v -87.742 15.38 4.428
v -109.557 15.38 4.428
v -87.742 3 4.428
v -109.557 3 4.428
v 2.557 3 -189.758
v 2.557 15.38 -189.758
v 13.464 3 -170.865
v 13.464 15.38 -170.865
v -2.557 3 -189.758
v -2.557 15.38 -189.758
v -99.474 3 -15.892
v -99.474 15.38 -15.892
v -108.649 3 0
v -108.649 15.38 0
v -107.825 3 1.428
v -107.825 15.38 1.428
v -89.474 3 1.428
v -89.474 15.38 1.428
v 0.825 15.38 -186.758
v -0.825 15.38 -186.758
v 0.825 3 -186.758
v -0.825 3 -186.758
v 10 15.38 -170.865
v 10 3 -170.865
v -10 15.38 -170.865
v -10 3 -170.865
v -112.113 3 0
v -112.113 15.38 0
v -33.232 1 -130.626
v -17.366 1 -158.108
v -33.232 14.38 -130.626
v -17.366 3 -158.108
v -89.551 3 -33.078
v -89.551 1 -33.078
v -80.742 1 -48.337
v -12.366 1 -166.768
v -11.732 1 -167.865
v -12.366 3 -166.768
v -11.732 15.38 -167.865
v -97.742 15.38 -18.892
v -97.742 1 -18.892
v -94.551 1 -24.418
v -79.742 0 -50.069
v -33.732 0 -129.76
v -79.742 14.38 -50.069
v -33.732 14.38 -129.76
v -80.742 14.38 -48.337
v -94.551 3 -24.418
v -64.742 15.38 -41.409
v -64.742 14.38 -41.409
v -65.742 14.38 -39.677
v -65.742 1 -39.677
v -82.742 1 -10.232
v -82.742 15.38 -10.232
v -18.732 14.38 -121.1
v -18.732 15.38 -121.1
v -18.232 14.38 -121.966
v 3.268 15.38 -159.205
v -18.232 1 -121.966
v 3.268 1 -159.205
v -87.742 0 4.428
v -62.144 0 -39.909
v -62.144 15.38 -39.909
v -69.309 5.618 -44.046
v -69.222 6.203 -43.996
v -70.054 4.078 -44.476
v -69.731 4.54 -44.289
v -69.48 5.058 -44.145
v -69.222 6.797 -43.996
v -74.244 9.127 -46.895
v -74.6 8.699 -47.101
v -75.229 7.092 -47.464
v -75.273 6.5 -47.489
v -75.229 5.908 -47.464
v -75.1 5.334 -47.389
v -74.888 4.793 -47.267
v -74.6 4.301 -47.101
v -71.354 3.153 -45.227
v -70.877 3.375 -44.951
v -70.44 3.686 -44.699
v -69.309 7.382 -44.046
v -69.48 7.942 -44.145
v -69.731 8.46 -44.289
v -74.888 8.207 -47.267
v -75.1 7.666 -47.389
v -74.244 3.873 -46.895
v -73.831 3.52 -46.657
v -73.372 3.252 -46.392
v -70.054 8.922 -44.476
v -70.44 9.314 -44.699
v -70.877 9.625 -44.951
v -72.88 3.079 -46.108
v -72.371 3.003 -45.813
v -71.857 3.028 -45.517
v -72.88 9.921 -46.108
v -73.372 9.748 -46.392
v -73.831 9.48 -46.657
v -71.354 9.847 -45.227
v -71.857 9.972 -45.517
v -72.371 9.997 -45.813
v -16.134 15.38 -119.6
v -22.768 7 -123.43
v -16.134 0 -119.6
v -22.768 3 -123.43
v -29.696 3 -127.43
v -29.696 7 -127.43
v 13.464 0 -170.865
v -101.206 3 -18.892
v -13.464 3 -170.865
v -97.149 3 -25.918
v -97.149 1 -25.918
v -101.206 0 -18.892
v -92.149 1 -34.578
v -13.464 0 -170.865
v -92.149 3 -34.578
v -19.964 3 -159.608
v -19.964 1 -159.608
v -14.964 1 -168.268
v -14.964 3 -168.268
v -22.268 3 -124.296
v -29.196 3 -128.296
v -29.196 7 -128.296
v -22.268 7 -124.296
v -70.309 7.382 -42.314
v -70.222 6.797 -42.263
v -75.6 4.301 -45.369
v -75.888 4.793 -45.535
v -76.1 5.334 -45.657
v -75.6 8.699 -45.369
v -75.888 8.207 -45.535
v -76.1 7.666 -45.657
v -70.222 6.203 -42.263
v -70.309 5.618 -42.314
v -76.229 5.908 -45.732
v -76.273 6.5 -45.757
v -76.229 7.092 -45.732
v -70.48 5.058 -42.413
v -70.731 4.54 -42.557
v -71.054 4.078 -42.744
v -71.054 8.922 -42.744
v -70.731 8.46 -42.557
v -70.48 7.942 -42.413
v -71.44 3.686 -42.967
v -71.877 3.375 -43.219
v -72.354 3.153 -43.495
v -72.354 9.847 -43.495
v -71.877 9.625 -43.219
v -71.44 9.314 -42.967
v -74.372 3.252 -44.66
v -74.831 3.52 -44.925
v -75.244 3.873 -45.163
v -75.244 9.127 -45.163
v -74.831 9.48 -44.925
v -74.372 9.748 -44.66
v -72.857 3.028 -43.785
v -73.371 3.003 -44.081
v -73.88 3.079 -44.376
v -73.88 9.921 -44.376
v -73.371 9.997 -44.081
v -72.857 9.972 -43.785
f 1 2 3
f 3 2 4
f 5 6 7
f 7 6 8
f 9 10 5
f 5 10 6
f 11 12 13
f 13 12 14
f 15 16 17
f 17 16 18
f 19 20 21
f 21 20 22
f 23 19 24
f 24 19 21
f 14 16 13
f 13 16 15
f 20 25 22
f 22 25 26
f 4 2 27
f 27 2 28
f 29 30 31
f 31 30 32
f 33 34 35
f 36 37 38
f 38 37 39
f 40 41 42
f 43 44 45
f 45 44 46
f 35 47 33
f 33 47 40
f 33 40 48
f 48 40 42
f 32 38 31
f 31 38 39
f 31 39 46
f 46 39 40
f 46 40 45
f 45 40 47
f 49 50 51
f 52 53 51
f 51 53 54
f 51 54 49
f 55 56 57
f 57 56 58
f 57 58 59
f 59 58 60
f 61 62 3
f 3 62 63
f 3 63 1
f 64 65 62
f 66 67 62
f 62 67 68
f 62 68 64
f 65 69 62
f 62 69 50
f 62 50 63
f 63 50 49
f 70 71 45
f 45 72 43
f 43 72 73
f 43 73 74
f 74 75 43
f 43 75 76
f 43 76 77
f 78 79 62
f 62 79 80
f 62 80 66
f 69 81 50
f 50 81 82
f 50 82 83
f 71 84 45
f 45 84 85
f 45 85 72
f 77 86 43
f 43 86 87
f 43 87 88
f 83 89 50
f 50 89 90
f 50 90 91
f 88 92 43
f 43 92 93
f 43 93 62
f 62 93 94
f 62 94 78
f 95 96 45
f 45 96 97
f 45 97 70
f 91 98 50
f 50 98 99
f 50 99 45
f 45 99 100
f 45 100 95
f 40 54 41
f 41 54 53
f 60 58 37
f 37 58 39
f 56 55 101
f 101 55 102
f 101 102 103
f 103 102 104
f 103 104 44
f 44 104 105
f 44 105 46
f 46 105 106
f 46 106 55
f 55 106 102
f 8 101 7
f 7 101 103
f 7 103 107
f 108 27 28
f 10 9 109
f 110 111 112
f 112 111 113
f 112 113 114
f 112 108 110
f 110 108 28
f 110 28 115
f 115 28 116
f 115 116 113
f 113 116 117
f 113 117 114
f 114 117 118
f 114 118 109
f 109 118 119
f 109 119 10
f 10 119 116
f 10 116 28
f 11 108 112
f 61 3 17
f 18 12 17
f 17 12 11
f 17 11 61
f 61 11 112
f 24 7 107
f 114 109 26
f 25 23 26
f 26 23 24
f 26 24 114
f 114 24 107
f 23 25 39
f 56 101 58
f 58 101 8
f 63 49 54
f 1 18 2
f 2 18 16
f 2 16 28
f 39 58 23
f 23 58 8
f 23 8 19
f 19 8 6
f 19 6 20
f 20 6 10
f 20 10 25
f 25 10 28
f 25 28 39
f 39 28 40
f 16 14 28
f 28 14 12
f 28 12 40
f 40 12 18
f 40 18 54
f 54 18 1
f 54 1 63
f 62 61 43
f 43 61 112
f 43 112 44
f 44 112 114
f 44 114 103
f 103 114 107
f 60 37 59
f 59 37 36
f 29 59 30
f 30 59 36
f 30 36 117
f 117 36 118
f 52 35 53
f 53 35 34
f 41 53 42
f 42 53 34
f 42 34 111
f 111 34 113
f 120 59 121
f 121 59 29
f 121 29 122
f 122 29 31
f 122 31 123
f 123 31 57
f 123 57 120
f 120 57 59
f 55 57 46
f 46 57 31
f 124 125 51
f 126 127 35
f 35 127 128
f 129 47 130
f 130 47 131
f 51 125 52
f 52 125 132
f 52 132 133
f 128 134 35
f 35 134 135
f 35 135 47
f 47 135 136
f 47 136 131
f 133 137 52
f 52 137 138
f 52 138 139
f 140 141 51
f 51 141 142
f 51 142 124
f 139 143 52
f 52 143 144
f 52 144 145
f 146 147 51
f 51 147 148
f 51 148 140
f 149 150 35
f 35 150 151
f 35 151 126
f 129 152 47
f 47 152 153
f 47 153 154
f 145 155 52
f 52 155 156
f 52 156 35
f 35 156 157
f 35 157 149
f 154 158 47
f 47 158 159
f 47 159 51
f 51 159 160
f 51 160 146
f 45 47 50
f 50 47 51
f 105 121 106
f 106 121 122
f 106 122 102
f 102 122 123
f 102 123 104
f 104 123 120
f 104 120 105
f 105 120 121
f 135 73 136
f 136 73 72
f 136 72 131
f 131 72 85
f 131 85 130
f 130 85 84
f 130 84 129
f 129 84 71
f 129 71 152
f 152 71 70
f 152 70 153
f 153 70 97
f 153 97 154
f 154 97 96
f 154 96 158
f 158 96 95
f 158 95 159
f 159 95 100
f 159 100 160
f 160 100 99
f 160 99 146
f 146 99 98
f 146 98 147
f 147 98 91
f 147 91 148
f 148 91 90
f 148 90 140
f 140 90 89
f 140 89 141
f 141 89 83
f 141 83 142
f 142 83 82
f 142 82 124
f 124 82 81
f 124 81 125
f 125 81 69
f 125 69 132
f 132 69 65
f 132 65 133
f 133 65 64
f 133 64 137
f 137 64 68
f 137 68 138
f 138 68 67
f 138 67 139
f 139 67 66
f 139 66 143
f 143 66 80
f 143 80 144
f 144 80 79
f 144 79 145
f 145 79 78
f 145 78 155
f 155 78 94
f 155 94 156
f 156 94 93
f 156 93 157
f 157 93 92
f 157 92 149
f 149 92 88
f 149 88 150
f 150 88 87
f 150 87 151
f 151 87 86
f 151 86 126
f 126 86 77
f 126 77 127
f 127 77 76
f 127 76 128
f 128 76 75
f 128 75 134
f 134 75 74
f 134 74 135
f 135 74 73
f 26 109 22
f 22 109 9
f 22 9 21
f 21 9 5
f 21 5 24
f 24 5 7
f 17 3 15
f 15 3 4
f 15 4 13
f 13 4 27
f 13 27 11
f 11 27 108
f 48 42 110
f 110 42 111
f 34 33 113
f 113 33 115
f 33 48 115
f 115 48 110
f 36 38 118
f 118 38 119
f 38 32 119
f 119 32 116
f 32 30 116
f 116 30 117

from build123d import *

# Parameters (mm, degrees)
BOSS_EXTRUDE2_DEPTH = 15.38
BOSS_EXTRUDE3_DEPTH = 1
BOSS_EXTRUDE4_DEPTH = 14.38
CUT_EXTRUDE1_DEPTH  = 8.26
SKETCH12_R          = 3.5
CUT_EXTRUDE2_DEPTH  = 8.26
CUT_EXTRUDE3_DEPTH  = 3
SKETCH16_W          = 10
SKETCH16_H          = 2
CUT_EXTRUDE4_DEPTH  = 3


with BuildPart() as part:
    # Sketch1 → Boss-Extrude2 (new body)
    with BuildSketch(Plane(origin=(0, 0, 0), x_dir=(1, 0, 0), z_dir=(0, 1, 0))):
        Polygon((-33.232050802, 130.626242439), (-11.732050802, 167.865334802), (3.267949197, 159.205080764), (-18.232050803, 121.965988402), (-18.732050803, 121.099962998), (-16.133974592, 119.599962998), (13.464101619, 170.865334801), (2.556624332, 189.757639644), (-2.556624322, 189.757639644), (-112.11324865, 2e-09), (-109.556624323, -4.428203228), (-87.74166975, -4.428203228), (-62.14359354, 39.908965344), (-64.74166975, 41.408965344), (-65.74166975, 39.676914536), (-82.74166975, 10.232050807), (-97.741669749, 18.892304845), (-80.741669749, 48.337168573), (-79.741669749, 50.069219381), (-33.732050802, 129.760217035), align=None)
        Polygon((-89.473720558, -1.42820323), (-107.824573519, -1.42820323), (-108.649147039, 0), (-99.473720558, 15.892304845), align=None, mode=Mode.SUBTRACT)
        Polygon((-9.999999996, 170.865334801), (-0.824573515, 186.757639646), (0.824573508, 186.757639646), (10.000000004, 170.865334801), align=None, mode=Mode.SUBTRACT)
    extrude(amount=BOSS_EXTRUDE2_DEPTH)

    # Sketch1<11> → Boss-Extrude3 (add)
    with BuildSketch(Plane(origin=(0, 0, 0), x_dir=(1, 0, 0), z_dir=(0, 1, 0))):
        Polygon((3.267949197, 159.205080764), (-11.732050802, 167.865334802), (-33.232050802, 130.626242439), (-18.232050803, 121.965988402), align=None)
        Polygon((-65.74166975, 39.676914536), (-80.741669749, 48.337168573), (-97.741669749, 18.892304845), (-82.74166975, 10.232050807), align=None)
    extrude(amount=BOSS_EXTRUDE3_DEPTH)

    # Sketch1<12> → Boss-Extrude4 (add)
    with BuildSketch(Plane(origin=(0, 0, 0), x_dir=(1, 0, 0), z_dir=(0, 1, 0))):
        Polygon((-18.232050803, 121.965988402), (-33.232050802, 130.626242439), (-33.732050802, 129.760217035), (-18.732050803, 121.099962998), align=None)
        Polygon((-64.74166975, 41.408965344), (-79.741669749, 50.069219381), (-80.741669749, 48.337168573), (-65.74166975, 39.676914536), align=None)
    extrude(amount=BOSS_EXTRUDE4_DEPTH)

    # Sketch10 → Cut-Extrude1 (cut)
    with BuildSketch(Plane(origin=(47.754809476, 0, -82.713756318), x_dir=(0.8660254037844418, 0, 0.49999999999999456), z_dir=(-0.4999999999999946, 0, 0.8660254037844419))):
        Polygon((-85.432921433, 3), (-81.432921433, 3), (-81.432921433, 7), (-89.432921433, 7), (-89.432921433, 3), align=None)
    extrude(amount=-CUT_EXTRUDE1_DEPTH, mode=Mode.SUBTRACT)

    # Sketch12 → Cut-Extrude2 (cut)
    with BuildSketch(Plane(origin=(1.745190528, 0, -3.022758664), x_dir=(-0.866025403784436, 0, -0.5000000000000047), z_dir=(0.5000000000000047, 0, -0.866025403784436))):
        with Locations((85.432921433, 6.5)):
            Circle(SKETCH12_R)
    extrude(amount=-CUT_EXTRUDE2_DEPTH, mode=Mode.SUBTRACT)

    # Sketch15 → Cut-Extrude3 (cut)
    with BuildSketch(Plane.XZ):
        Polygon((-87.74166975, 4.428203228), (-109.556624323, 4.428203228), (-112.11324865, -2e-09), (-101.205771363, -18.892304845), align=None)
        Polygon((13.464101619, -170.865334801), (2.556624332, -189.757639644), (-2.556624322, -189.757639644), (-13.464101609, -170.865334801), align=None)
    extrude(amount=-CUT_EXTRUDE3_DEPTH, mode=Mode.SUBTRACT)

    # Sketch16 → Cut-Extrude4 (cut)
    with BuildSketch(Plane(origin=(-84.084936489, 0, -48.546460716), x_dir=(-0.4999999999999999, 0, 0.8660254037844386), z_dir=(-0.8660254037844387, 0, -0.49999999999999994))):
        with Locations((-133.242624333, 2)):
            Rectangle(SKETCH16_W, SKETCH16_H)
        with Locations((21.128966724, 2)):
            Rectangle(SKETCH16_W, SKETCH16_H)
    extrude(amount=-CUT_EXTRUDE4_DEPTH, mode=Mode.SUBTRACT)


solid = part.part
